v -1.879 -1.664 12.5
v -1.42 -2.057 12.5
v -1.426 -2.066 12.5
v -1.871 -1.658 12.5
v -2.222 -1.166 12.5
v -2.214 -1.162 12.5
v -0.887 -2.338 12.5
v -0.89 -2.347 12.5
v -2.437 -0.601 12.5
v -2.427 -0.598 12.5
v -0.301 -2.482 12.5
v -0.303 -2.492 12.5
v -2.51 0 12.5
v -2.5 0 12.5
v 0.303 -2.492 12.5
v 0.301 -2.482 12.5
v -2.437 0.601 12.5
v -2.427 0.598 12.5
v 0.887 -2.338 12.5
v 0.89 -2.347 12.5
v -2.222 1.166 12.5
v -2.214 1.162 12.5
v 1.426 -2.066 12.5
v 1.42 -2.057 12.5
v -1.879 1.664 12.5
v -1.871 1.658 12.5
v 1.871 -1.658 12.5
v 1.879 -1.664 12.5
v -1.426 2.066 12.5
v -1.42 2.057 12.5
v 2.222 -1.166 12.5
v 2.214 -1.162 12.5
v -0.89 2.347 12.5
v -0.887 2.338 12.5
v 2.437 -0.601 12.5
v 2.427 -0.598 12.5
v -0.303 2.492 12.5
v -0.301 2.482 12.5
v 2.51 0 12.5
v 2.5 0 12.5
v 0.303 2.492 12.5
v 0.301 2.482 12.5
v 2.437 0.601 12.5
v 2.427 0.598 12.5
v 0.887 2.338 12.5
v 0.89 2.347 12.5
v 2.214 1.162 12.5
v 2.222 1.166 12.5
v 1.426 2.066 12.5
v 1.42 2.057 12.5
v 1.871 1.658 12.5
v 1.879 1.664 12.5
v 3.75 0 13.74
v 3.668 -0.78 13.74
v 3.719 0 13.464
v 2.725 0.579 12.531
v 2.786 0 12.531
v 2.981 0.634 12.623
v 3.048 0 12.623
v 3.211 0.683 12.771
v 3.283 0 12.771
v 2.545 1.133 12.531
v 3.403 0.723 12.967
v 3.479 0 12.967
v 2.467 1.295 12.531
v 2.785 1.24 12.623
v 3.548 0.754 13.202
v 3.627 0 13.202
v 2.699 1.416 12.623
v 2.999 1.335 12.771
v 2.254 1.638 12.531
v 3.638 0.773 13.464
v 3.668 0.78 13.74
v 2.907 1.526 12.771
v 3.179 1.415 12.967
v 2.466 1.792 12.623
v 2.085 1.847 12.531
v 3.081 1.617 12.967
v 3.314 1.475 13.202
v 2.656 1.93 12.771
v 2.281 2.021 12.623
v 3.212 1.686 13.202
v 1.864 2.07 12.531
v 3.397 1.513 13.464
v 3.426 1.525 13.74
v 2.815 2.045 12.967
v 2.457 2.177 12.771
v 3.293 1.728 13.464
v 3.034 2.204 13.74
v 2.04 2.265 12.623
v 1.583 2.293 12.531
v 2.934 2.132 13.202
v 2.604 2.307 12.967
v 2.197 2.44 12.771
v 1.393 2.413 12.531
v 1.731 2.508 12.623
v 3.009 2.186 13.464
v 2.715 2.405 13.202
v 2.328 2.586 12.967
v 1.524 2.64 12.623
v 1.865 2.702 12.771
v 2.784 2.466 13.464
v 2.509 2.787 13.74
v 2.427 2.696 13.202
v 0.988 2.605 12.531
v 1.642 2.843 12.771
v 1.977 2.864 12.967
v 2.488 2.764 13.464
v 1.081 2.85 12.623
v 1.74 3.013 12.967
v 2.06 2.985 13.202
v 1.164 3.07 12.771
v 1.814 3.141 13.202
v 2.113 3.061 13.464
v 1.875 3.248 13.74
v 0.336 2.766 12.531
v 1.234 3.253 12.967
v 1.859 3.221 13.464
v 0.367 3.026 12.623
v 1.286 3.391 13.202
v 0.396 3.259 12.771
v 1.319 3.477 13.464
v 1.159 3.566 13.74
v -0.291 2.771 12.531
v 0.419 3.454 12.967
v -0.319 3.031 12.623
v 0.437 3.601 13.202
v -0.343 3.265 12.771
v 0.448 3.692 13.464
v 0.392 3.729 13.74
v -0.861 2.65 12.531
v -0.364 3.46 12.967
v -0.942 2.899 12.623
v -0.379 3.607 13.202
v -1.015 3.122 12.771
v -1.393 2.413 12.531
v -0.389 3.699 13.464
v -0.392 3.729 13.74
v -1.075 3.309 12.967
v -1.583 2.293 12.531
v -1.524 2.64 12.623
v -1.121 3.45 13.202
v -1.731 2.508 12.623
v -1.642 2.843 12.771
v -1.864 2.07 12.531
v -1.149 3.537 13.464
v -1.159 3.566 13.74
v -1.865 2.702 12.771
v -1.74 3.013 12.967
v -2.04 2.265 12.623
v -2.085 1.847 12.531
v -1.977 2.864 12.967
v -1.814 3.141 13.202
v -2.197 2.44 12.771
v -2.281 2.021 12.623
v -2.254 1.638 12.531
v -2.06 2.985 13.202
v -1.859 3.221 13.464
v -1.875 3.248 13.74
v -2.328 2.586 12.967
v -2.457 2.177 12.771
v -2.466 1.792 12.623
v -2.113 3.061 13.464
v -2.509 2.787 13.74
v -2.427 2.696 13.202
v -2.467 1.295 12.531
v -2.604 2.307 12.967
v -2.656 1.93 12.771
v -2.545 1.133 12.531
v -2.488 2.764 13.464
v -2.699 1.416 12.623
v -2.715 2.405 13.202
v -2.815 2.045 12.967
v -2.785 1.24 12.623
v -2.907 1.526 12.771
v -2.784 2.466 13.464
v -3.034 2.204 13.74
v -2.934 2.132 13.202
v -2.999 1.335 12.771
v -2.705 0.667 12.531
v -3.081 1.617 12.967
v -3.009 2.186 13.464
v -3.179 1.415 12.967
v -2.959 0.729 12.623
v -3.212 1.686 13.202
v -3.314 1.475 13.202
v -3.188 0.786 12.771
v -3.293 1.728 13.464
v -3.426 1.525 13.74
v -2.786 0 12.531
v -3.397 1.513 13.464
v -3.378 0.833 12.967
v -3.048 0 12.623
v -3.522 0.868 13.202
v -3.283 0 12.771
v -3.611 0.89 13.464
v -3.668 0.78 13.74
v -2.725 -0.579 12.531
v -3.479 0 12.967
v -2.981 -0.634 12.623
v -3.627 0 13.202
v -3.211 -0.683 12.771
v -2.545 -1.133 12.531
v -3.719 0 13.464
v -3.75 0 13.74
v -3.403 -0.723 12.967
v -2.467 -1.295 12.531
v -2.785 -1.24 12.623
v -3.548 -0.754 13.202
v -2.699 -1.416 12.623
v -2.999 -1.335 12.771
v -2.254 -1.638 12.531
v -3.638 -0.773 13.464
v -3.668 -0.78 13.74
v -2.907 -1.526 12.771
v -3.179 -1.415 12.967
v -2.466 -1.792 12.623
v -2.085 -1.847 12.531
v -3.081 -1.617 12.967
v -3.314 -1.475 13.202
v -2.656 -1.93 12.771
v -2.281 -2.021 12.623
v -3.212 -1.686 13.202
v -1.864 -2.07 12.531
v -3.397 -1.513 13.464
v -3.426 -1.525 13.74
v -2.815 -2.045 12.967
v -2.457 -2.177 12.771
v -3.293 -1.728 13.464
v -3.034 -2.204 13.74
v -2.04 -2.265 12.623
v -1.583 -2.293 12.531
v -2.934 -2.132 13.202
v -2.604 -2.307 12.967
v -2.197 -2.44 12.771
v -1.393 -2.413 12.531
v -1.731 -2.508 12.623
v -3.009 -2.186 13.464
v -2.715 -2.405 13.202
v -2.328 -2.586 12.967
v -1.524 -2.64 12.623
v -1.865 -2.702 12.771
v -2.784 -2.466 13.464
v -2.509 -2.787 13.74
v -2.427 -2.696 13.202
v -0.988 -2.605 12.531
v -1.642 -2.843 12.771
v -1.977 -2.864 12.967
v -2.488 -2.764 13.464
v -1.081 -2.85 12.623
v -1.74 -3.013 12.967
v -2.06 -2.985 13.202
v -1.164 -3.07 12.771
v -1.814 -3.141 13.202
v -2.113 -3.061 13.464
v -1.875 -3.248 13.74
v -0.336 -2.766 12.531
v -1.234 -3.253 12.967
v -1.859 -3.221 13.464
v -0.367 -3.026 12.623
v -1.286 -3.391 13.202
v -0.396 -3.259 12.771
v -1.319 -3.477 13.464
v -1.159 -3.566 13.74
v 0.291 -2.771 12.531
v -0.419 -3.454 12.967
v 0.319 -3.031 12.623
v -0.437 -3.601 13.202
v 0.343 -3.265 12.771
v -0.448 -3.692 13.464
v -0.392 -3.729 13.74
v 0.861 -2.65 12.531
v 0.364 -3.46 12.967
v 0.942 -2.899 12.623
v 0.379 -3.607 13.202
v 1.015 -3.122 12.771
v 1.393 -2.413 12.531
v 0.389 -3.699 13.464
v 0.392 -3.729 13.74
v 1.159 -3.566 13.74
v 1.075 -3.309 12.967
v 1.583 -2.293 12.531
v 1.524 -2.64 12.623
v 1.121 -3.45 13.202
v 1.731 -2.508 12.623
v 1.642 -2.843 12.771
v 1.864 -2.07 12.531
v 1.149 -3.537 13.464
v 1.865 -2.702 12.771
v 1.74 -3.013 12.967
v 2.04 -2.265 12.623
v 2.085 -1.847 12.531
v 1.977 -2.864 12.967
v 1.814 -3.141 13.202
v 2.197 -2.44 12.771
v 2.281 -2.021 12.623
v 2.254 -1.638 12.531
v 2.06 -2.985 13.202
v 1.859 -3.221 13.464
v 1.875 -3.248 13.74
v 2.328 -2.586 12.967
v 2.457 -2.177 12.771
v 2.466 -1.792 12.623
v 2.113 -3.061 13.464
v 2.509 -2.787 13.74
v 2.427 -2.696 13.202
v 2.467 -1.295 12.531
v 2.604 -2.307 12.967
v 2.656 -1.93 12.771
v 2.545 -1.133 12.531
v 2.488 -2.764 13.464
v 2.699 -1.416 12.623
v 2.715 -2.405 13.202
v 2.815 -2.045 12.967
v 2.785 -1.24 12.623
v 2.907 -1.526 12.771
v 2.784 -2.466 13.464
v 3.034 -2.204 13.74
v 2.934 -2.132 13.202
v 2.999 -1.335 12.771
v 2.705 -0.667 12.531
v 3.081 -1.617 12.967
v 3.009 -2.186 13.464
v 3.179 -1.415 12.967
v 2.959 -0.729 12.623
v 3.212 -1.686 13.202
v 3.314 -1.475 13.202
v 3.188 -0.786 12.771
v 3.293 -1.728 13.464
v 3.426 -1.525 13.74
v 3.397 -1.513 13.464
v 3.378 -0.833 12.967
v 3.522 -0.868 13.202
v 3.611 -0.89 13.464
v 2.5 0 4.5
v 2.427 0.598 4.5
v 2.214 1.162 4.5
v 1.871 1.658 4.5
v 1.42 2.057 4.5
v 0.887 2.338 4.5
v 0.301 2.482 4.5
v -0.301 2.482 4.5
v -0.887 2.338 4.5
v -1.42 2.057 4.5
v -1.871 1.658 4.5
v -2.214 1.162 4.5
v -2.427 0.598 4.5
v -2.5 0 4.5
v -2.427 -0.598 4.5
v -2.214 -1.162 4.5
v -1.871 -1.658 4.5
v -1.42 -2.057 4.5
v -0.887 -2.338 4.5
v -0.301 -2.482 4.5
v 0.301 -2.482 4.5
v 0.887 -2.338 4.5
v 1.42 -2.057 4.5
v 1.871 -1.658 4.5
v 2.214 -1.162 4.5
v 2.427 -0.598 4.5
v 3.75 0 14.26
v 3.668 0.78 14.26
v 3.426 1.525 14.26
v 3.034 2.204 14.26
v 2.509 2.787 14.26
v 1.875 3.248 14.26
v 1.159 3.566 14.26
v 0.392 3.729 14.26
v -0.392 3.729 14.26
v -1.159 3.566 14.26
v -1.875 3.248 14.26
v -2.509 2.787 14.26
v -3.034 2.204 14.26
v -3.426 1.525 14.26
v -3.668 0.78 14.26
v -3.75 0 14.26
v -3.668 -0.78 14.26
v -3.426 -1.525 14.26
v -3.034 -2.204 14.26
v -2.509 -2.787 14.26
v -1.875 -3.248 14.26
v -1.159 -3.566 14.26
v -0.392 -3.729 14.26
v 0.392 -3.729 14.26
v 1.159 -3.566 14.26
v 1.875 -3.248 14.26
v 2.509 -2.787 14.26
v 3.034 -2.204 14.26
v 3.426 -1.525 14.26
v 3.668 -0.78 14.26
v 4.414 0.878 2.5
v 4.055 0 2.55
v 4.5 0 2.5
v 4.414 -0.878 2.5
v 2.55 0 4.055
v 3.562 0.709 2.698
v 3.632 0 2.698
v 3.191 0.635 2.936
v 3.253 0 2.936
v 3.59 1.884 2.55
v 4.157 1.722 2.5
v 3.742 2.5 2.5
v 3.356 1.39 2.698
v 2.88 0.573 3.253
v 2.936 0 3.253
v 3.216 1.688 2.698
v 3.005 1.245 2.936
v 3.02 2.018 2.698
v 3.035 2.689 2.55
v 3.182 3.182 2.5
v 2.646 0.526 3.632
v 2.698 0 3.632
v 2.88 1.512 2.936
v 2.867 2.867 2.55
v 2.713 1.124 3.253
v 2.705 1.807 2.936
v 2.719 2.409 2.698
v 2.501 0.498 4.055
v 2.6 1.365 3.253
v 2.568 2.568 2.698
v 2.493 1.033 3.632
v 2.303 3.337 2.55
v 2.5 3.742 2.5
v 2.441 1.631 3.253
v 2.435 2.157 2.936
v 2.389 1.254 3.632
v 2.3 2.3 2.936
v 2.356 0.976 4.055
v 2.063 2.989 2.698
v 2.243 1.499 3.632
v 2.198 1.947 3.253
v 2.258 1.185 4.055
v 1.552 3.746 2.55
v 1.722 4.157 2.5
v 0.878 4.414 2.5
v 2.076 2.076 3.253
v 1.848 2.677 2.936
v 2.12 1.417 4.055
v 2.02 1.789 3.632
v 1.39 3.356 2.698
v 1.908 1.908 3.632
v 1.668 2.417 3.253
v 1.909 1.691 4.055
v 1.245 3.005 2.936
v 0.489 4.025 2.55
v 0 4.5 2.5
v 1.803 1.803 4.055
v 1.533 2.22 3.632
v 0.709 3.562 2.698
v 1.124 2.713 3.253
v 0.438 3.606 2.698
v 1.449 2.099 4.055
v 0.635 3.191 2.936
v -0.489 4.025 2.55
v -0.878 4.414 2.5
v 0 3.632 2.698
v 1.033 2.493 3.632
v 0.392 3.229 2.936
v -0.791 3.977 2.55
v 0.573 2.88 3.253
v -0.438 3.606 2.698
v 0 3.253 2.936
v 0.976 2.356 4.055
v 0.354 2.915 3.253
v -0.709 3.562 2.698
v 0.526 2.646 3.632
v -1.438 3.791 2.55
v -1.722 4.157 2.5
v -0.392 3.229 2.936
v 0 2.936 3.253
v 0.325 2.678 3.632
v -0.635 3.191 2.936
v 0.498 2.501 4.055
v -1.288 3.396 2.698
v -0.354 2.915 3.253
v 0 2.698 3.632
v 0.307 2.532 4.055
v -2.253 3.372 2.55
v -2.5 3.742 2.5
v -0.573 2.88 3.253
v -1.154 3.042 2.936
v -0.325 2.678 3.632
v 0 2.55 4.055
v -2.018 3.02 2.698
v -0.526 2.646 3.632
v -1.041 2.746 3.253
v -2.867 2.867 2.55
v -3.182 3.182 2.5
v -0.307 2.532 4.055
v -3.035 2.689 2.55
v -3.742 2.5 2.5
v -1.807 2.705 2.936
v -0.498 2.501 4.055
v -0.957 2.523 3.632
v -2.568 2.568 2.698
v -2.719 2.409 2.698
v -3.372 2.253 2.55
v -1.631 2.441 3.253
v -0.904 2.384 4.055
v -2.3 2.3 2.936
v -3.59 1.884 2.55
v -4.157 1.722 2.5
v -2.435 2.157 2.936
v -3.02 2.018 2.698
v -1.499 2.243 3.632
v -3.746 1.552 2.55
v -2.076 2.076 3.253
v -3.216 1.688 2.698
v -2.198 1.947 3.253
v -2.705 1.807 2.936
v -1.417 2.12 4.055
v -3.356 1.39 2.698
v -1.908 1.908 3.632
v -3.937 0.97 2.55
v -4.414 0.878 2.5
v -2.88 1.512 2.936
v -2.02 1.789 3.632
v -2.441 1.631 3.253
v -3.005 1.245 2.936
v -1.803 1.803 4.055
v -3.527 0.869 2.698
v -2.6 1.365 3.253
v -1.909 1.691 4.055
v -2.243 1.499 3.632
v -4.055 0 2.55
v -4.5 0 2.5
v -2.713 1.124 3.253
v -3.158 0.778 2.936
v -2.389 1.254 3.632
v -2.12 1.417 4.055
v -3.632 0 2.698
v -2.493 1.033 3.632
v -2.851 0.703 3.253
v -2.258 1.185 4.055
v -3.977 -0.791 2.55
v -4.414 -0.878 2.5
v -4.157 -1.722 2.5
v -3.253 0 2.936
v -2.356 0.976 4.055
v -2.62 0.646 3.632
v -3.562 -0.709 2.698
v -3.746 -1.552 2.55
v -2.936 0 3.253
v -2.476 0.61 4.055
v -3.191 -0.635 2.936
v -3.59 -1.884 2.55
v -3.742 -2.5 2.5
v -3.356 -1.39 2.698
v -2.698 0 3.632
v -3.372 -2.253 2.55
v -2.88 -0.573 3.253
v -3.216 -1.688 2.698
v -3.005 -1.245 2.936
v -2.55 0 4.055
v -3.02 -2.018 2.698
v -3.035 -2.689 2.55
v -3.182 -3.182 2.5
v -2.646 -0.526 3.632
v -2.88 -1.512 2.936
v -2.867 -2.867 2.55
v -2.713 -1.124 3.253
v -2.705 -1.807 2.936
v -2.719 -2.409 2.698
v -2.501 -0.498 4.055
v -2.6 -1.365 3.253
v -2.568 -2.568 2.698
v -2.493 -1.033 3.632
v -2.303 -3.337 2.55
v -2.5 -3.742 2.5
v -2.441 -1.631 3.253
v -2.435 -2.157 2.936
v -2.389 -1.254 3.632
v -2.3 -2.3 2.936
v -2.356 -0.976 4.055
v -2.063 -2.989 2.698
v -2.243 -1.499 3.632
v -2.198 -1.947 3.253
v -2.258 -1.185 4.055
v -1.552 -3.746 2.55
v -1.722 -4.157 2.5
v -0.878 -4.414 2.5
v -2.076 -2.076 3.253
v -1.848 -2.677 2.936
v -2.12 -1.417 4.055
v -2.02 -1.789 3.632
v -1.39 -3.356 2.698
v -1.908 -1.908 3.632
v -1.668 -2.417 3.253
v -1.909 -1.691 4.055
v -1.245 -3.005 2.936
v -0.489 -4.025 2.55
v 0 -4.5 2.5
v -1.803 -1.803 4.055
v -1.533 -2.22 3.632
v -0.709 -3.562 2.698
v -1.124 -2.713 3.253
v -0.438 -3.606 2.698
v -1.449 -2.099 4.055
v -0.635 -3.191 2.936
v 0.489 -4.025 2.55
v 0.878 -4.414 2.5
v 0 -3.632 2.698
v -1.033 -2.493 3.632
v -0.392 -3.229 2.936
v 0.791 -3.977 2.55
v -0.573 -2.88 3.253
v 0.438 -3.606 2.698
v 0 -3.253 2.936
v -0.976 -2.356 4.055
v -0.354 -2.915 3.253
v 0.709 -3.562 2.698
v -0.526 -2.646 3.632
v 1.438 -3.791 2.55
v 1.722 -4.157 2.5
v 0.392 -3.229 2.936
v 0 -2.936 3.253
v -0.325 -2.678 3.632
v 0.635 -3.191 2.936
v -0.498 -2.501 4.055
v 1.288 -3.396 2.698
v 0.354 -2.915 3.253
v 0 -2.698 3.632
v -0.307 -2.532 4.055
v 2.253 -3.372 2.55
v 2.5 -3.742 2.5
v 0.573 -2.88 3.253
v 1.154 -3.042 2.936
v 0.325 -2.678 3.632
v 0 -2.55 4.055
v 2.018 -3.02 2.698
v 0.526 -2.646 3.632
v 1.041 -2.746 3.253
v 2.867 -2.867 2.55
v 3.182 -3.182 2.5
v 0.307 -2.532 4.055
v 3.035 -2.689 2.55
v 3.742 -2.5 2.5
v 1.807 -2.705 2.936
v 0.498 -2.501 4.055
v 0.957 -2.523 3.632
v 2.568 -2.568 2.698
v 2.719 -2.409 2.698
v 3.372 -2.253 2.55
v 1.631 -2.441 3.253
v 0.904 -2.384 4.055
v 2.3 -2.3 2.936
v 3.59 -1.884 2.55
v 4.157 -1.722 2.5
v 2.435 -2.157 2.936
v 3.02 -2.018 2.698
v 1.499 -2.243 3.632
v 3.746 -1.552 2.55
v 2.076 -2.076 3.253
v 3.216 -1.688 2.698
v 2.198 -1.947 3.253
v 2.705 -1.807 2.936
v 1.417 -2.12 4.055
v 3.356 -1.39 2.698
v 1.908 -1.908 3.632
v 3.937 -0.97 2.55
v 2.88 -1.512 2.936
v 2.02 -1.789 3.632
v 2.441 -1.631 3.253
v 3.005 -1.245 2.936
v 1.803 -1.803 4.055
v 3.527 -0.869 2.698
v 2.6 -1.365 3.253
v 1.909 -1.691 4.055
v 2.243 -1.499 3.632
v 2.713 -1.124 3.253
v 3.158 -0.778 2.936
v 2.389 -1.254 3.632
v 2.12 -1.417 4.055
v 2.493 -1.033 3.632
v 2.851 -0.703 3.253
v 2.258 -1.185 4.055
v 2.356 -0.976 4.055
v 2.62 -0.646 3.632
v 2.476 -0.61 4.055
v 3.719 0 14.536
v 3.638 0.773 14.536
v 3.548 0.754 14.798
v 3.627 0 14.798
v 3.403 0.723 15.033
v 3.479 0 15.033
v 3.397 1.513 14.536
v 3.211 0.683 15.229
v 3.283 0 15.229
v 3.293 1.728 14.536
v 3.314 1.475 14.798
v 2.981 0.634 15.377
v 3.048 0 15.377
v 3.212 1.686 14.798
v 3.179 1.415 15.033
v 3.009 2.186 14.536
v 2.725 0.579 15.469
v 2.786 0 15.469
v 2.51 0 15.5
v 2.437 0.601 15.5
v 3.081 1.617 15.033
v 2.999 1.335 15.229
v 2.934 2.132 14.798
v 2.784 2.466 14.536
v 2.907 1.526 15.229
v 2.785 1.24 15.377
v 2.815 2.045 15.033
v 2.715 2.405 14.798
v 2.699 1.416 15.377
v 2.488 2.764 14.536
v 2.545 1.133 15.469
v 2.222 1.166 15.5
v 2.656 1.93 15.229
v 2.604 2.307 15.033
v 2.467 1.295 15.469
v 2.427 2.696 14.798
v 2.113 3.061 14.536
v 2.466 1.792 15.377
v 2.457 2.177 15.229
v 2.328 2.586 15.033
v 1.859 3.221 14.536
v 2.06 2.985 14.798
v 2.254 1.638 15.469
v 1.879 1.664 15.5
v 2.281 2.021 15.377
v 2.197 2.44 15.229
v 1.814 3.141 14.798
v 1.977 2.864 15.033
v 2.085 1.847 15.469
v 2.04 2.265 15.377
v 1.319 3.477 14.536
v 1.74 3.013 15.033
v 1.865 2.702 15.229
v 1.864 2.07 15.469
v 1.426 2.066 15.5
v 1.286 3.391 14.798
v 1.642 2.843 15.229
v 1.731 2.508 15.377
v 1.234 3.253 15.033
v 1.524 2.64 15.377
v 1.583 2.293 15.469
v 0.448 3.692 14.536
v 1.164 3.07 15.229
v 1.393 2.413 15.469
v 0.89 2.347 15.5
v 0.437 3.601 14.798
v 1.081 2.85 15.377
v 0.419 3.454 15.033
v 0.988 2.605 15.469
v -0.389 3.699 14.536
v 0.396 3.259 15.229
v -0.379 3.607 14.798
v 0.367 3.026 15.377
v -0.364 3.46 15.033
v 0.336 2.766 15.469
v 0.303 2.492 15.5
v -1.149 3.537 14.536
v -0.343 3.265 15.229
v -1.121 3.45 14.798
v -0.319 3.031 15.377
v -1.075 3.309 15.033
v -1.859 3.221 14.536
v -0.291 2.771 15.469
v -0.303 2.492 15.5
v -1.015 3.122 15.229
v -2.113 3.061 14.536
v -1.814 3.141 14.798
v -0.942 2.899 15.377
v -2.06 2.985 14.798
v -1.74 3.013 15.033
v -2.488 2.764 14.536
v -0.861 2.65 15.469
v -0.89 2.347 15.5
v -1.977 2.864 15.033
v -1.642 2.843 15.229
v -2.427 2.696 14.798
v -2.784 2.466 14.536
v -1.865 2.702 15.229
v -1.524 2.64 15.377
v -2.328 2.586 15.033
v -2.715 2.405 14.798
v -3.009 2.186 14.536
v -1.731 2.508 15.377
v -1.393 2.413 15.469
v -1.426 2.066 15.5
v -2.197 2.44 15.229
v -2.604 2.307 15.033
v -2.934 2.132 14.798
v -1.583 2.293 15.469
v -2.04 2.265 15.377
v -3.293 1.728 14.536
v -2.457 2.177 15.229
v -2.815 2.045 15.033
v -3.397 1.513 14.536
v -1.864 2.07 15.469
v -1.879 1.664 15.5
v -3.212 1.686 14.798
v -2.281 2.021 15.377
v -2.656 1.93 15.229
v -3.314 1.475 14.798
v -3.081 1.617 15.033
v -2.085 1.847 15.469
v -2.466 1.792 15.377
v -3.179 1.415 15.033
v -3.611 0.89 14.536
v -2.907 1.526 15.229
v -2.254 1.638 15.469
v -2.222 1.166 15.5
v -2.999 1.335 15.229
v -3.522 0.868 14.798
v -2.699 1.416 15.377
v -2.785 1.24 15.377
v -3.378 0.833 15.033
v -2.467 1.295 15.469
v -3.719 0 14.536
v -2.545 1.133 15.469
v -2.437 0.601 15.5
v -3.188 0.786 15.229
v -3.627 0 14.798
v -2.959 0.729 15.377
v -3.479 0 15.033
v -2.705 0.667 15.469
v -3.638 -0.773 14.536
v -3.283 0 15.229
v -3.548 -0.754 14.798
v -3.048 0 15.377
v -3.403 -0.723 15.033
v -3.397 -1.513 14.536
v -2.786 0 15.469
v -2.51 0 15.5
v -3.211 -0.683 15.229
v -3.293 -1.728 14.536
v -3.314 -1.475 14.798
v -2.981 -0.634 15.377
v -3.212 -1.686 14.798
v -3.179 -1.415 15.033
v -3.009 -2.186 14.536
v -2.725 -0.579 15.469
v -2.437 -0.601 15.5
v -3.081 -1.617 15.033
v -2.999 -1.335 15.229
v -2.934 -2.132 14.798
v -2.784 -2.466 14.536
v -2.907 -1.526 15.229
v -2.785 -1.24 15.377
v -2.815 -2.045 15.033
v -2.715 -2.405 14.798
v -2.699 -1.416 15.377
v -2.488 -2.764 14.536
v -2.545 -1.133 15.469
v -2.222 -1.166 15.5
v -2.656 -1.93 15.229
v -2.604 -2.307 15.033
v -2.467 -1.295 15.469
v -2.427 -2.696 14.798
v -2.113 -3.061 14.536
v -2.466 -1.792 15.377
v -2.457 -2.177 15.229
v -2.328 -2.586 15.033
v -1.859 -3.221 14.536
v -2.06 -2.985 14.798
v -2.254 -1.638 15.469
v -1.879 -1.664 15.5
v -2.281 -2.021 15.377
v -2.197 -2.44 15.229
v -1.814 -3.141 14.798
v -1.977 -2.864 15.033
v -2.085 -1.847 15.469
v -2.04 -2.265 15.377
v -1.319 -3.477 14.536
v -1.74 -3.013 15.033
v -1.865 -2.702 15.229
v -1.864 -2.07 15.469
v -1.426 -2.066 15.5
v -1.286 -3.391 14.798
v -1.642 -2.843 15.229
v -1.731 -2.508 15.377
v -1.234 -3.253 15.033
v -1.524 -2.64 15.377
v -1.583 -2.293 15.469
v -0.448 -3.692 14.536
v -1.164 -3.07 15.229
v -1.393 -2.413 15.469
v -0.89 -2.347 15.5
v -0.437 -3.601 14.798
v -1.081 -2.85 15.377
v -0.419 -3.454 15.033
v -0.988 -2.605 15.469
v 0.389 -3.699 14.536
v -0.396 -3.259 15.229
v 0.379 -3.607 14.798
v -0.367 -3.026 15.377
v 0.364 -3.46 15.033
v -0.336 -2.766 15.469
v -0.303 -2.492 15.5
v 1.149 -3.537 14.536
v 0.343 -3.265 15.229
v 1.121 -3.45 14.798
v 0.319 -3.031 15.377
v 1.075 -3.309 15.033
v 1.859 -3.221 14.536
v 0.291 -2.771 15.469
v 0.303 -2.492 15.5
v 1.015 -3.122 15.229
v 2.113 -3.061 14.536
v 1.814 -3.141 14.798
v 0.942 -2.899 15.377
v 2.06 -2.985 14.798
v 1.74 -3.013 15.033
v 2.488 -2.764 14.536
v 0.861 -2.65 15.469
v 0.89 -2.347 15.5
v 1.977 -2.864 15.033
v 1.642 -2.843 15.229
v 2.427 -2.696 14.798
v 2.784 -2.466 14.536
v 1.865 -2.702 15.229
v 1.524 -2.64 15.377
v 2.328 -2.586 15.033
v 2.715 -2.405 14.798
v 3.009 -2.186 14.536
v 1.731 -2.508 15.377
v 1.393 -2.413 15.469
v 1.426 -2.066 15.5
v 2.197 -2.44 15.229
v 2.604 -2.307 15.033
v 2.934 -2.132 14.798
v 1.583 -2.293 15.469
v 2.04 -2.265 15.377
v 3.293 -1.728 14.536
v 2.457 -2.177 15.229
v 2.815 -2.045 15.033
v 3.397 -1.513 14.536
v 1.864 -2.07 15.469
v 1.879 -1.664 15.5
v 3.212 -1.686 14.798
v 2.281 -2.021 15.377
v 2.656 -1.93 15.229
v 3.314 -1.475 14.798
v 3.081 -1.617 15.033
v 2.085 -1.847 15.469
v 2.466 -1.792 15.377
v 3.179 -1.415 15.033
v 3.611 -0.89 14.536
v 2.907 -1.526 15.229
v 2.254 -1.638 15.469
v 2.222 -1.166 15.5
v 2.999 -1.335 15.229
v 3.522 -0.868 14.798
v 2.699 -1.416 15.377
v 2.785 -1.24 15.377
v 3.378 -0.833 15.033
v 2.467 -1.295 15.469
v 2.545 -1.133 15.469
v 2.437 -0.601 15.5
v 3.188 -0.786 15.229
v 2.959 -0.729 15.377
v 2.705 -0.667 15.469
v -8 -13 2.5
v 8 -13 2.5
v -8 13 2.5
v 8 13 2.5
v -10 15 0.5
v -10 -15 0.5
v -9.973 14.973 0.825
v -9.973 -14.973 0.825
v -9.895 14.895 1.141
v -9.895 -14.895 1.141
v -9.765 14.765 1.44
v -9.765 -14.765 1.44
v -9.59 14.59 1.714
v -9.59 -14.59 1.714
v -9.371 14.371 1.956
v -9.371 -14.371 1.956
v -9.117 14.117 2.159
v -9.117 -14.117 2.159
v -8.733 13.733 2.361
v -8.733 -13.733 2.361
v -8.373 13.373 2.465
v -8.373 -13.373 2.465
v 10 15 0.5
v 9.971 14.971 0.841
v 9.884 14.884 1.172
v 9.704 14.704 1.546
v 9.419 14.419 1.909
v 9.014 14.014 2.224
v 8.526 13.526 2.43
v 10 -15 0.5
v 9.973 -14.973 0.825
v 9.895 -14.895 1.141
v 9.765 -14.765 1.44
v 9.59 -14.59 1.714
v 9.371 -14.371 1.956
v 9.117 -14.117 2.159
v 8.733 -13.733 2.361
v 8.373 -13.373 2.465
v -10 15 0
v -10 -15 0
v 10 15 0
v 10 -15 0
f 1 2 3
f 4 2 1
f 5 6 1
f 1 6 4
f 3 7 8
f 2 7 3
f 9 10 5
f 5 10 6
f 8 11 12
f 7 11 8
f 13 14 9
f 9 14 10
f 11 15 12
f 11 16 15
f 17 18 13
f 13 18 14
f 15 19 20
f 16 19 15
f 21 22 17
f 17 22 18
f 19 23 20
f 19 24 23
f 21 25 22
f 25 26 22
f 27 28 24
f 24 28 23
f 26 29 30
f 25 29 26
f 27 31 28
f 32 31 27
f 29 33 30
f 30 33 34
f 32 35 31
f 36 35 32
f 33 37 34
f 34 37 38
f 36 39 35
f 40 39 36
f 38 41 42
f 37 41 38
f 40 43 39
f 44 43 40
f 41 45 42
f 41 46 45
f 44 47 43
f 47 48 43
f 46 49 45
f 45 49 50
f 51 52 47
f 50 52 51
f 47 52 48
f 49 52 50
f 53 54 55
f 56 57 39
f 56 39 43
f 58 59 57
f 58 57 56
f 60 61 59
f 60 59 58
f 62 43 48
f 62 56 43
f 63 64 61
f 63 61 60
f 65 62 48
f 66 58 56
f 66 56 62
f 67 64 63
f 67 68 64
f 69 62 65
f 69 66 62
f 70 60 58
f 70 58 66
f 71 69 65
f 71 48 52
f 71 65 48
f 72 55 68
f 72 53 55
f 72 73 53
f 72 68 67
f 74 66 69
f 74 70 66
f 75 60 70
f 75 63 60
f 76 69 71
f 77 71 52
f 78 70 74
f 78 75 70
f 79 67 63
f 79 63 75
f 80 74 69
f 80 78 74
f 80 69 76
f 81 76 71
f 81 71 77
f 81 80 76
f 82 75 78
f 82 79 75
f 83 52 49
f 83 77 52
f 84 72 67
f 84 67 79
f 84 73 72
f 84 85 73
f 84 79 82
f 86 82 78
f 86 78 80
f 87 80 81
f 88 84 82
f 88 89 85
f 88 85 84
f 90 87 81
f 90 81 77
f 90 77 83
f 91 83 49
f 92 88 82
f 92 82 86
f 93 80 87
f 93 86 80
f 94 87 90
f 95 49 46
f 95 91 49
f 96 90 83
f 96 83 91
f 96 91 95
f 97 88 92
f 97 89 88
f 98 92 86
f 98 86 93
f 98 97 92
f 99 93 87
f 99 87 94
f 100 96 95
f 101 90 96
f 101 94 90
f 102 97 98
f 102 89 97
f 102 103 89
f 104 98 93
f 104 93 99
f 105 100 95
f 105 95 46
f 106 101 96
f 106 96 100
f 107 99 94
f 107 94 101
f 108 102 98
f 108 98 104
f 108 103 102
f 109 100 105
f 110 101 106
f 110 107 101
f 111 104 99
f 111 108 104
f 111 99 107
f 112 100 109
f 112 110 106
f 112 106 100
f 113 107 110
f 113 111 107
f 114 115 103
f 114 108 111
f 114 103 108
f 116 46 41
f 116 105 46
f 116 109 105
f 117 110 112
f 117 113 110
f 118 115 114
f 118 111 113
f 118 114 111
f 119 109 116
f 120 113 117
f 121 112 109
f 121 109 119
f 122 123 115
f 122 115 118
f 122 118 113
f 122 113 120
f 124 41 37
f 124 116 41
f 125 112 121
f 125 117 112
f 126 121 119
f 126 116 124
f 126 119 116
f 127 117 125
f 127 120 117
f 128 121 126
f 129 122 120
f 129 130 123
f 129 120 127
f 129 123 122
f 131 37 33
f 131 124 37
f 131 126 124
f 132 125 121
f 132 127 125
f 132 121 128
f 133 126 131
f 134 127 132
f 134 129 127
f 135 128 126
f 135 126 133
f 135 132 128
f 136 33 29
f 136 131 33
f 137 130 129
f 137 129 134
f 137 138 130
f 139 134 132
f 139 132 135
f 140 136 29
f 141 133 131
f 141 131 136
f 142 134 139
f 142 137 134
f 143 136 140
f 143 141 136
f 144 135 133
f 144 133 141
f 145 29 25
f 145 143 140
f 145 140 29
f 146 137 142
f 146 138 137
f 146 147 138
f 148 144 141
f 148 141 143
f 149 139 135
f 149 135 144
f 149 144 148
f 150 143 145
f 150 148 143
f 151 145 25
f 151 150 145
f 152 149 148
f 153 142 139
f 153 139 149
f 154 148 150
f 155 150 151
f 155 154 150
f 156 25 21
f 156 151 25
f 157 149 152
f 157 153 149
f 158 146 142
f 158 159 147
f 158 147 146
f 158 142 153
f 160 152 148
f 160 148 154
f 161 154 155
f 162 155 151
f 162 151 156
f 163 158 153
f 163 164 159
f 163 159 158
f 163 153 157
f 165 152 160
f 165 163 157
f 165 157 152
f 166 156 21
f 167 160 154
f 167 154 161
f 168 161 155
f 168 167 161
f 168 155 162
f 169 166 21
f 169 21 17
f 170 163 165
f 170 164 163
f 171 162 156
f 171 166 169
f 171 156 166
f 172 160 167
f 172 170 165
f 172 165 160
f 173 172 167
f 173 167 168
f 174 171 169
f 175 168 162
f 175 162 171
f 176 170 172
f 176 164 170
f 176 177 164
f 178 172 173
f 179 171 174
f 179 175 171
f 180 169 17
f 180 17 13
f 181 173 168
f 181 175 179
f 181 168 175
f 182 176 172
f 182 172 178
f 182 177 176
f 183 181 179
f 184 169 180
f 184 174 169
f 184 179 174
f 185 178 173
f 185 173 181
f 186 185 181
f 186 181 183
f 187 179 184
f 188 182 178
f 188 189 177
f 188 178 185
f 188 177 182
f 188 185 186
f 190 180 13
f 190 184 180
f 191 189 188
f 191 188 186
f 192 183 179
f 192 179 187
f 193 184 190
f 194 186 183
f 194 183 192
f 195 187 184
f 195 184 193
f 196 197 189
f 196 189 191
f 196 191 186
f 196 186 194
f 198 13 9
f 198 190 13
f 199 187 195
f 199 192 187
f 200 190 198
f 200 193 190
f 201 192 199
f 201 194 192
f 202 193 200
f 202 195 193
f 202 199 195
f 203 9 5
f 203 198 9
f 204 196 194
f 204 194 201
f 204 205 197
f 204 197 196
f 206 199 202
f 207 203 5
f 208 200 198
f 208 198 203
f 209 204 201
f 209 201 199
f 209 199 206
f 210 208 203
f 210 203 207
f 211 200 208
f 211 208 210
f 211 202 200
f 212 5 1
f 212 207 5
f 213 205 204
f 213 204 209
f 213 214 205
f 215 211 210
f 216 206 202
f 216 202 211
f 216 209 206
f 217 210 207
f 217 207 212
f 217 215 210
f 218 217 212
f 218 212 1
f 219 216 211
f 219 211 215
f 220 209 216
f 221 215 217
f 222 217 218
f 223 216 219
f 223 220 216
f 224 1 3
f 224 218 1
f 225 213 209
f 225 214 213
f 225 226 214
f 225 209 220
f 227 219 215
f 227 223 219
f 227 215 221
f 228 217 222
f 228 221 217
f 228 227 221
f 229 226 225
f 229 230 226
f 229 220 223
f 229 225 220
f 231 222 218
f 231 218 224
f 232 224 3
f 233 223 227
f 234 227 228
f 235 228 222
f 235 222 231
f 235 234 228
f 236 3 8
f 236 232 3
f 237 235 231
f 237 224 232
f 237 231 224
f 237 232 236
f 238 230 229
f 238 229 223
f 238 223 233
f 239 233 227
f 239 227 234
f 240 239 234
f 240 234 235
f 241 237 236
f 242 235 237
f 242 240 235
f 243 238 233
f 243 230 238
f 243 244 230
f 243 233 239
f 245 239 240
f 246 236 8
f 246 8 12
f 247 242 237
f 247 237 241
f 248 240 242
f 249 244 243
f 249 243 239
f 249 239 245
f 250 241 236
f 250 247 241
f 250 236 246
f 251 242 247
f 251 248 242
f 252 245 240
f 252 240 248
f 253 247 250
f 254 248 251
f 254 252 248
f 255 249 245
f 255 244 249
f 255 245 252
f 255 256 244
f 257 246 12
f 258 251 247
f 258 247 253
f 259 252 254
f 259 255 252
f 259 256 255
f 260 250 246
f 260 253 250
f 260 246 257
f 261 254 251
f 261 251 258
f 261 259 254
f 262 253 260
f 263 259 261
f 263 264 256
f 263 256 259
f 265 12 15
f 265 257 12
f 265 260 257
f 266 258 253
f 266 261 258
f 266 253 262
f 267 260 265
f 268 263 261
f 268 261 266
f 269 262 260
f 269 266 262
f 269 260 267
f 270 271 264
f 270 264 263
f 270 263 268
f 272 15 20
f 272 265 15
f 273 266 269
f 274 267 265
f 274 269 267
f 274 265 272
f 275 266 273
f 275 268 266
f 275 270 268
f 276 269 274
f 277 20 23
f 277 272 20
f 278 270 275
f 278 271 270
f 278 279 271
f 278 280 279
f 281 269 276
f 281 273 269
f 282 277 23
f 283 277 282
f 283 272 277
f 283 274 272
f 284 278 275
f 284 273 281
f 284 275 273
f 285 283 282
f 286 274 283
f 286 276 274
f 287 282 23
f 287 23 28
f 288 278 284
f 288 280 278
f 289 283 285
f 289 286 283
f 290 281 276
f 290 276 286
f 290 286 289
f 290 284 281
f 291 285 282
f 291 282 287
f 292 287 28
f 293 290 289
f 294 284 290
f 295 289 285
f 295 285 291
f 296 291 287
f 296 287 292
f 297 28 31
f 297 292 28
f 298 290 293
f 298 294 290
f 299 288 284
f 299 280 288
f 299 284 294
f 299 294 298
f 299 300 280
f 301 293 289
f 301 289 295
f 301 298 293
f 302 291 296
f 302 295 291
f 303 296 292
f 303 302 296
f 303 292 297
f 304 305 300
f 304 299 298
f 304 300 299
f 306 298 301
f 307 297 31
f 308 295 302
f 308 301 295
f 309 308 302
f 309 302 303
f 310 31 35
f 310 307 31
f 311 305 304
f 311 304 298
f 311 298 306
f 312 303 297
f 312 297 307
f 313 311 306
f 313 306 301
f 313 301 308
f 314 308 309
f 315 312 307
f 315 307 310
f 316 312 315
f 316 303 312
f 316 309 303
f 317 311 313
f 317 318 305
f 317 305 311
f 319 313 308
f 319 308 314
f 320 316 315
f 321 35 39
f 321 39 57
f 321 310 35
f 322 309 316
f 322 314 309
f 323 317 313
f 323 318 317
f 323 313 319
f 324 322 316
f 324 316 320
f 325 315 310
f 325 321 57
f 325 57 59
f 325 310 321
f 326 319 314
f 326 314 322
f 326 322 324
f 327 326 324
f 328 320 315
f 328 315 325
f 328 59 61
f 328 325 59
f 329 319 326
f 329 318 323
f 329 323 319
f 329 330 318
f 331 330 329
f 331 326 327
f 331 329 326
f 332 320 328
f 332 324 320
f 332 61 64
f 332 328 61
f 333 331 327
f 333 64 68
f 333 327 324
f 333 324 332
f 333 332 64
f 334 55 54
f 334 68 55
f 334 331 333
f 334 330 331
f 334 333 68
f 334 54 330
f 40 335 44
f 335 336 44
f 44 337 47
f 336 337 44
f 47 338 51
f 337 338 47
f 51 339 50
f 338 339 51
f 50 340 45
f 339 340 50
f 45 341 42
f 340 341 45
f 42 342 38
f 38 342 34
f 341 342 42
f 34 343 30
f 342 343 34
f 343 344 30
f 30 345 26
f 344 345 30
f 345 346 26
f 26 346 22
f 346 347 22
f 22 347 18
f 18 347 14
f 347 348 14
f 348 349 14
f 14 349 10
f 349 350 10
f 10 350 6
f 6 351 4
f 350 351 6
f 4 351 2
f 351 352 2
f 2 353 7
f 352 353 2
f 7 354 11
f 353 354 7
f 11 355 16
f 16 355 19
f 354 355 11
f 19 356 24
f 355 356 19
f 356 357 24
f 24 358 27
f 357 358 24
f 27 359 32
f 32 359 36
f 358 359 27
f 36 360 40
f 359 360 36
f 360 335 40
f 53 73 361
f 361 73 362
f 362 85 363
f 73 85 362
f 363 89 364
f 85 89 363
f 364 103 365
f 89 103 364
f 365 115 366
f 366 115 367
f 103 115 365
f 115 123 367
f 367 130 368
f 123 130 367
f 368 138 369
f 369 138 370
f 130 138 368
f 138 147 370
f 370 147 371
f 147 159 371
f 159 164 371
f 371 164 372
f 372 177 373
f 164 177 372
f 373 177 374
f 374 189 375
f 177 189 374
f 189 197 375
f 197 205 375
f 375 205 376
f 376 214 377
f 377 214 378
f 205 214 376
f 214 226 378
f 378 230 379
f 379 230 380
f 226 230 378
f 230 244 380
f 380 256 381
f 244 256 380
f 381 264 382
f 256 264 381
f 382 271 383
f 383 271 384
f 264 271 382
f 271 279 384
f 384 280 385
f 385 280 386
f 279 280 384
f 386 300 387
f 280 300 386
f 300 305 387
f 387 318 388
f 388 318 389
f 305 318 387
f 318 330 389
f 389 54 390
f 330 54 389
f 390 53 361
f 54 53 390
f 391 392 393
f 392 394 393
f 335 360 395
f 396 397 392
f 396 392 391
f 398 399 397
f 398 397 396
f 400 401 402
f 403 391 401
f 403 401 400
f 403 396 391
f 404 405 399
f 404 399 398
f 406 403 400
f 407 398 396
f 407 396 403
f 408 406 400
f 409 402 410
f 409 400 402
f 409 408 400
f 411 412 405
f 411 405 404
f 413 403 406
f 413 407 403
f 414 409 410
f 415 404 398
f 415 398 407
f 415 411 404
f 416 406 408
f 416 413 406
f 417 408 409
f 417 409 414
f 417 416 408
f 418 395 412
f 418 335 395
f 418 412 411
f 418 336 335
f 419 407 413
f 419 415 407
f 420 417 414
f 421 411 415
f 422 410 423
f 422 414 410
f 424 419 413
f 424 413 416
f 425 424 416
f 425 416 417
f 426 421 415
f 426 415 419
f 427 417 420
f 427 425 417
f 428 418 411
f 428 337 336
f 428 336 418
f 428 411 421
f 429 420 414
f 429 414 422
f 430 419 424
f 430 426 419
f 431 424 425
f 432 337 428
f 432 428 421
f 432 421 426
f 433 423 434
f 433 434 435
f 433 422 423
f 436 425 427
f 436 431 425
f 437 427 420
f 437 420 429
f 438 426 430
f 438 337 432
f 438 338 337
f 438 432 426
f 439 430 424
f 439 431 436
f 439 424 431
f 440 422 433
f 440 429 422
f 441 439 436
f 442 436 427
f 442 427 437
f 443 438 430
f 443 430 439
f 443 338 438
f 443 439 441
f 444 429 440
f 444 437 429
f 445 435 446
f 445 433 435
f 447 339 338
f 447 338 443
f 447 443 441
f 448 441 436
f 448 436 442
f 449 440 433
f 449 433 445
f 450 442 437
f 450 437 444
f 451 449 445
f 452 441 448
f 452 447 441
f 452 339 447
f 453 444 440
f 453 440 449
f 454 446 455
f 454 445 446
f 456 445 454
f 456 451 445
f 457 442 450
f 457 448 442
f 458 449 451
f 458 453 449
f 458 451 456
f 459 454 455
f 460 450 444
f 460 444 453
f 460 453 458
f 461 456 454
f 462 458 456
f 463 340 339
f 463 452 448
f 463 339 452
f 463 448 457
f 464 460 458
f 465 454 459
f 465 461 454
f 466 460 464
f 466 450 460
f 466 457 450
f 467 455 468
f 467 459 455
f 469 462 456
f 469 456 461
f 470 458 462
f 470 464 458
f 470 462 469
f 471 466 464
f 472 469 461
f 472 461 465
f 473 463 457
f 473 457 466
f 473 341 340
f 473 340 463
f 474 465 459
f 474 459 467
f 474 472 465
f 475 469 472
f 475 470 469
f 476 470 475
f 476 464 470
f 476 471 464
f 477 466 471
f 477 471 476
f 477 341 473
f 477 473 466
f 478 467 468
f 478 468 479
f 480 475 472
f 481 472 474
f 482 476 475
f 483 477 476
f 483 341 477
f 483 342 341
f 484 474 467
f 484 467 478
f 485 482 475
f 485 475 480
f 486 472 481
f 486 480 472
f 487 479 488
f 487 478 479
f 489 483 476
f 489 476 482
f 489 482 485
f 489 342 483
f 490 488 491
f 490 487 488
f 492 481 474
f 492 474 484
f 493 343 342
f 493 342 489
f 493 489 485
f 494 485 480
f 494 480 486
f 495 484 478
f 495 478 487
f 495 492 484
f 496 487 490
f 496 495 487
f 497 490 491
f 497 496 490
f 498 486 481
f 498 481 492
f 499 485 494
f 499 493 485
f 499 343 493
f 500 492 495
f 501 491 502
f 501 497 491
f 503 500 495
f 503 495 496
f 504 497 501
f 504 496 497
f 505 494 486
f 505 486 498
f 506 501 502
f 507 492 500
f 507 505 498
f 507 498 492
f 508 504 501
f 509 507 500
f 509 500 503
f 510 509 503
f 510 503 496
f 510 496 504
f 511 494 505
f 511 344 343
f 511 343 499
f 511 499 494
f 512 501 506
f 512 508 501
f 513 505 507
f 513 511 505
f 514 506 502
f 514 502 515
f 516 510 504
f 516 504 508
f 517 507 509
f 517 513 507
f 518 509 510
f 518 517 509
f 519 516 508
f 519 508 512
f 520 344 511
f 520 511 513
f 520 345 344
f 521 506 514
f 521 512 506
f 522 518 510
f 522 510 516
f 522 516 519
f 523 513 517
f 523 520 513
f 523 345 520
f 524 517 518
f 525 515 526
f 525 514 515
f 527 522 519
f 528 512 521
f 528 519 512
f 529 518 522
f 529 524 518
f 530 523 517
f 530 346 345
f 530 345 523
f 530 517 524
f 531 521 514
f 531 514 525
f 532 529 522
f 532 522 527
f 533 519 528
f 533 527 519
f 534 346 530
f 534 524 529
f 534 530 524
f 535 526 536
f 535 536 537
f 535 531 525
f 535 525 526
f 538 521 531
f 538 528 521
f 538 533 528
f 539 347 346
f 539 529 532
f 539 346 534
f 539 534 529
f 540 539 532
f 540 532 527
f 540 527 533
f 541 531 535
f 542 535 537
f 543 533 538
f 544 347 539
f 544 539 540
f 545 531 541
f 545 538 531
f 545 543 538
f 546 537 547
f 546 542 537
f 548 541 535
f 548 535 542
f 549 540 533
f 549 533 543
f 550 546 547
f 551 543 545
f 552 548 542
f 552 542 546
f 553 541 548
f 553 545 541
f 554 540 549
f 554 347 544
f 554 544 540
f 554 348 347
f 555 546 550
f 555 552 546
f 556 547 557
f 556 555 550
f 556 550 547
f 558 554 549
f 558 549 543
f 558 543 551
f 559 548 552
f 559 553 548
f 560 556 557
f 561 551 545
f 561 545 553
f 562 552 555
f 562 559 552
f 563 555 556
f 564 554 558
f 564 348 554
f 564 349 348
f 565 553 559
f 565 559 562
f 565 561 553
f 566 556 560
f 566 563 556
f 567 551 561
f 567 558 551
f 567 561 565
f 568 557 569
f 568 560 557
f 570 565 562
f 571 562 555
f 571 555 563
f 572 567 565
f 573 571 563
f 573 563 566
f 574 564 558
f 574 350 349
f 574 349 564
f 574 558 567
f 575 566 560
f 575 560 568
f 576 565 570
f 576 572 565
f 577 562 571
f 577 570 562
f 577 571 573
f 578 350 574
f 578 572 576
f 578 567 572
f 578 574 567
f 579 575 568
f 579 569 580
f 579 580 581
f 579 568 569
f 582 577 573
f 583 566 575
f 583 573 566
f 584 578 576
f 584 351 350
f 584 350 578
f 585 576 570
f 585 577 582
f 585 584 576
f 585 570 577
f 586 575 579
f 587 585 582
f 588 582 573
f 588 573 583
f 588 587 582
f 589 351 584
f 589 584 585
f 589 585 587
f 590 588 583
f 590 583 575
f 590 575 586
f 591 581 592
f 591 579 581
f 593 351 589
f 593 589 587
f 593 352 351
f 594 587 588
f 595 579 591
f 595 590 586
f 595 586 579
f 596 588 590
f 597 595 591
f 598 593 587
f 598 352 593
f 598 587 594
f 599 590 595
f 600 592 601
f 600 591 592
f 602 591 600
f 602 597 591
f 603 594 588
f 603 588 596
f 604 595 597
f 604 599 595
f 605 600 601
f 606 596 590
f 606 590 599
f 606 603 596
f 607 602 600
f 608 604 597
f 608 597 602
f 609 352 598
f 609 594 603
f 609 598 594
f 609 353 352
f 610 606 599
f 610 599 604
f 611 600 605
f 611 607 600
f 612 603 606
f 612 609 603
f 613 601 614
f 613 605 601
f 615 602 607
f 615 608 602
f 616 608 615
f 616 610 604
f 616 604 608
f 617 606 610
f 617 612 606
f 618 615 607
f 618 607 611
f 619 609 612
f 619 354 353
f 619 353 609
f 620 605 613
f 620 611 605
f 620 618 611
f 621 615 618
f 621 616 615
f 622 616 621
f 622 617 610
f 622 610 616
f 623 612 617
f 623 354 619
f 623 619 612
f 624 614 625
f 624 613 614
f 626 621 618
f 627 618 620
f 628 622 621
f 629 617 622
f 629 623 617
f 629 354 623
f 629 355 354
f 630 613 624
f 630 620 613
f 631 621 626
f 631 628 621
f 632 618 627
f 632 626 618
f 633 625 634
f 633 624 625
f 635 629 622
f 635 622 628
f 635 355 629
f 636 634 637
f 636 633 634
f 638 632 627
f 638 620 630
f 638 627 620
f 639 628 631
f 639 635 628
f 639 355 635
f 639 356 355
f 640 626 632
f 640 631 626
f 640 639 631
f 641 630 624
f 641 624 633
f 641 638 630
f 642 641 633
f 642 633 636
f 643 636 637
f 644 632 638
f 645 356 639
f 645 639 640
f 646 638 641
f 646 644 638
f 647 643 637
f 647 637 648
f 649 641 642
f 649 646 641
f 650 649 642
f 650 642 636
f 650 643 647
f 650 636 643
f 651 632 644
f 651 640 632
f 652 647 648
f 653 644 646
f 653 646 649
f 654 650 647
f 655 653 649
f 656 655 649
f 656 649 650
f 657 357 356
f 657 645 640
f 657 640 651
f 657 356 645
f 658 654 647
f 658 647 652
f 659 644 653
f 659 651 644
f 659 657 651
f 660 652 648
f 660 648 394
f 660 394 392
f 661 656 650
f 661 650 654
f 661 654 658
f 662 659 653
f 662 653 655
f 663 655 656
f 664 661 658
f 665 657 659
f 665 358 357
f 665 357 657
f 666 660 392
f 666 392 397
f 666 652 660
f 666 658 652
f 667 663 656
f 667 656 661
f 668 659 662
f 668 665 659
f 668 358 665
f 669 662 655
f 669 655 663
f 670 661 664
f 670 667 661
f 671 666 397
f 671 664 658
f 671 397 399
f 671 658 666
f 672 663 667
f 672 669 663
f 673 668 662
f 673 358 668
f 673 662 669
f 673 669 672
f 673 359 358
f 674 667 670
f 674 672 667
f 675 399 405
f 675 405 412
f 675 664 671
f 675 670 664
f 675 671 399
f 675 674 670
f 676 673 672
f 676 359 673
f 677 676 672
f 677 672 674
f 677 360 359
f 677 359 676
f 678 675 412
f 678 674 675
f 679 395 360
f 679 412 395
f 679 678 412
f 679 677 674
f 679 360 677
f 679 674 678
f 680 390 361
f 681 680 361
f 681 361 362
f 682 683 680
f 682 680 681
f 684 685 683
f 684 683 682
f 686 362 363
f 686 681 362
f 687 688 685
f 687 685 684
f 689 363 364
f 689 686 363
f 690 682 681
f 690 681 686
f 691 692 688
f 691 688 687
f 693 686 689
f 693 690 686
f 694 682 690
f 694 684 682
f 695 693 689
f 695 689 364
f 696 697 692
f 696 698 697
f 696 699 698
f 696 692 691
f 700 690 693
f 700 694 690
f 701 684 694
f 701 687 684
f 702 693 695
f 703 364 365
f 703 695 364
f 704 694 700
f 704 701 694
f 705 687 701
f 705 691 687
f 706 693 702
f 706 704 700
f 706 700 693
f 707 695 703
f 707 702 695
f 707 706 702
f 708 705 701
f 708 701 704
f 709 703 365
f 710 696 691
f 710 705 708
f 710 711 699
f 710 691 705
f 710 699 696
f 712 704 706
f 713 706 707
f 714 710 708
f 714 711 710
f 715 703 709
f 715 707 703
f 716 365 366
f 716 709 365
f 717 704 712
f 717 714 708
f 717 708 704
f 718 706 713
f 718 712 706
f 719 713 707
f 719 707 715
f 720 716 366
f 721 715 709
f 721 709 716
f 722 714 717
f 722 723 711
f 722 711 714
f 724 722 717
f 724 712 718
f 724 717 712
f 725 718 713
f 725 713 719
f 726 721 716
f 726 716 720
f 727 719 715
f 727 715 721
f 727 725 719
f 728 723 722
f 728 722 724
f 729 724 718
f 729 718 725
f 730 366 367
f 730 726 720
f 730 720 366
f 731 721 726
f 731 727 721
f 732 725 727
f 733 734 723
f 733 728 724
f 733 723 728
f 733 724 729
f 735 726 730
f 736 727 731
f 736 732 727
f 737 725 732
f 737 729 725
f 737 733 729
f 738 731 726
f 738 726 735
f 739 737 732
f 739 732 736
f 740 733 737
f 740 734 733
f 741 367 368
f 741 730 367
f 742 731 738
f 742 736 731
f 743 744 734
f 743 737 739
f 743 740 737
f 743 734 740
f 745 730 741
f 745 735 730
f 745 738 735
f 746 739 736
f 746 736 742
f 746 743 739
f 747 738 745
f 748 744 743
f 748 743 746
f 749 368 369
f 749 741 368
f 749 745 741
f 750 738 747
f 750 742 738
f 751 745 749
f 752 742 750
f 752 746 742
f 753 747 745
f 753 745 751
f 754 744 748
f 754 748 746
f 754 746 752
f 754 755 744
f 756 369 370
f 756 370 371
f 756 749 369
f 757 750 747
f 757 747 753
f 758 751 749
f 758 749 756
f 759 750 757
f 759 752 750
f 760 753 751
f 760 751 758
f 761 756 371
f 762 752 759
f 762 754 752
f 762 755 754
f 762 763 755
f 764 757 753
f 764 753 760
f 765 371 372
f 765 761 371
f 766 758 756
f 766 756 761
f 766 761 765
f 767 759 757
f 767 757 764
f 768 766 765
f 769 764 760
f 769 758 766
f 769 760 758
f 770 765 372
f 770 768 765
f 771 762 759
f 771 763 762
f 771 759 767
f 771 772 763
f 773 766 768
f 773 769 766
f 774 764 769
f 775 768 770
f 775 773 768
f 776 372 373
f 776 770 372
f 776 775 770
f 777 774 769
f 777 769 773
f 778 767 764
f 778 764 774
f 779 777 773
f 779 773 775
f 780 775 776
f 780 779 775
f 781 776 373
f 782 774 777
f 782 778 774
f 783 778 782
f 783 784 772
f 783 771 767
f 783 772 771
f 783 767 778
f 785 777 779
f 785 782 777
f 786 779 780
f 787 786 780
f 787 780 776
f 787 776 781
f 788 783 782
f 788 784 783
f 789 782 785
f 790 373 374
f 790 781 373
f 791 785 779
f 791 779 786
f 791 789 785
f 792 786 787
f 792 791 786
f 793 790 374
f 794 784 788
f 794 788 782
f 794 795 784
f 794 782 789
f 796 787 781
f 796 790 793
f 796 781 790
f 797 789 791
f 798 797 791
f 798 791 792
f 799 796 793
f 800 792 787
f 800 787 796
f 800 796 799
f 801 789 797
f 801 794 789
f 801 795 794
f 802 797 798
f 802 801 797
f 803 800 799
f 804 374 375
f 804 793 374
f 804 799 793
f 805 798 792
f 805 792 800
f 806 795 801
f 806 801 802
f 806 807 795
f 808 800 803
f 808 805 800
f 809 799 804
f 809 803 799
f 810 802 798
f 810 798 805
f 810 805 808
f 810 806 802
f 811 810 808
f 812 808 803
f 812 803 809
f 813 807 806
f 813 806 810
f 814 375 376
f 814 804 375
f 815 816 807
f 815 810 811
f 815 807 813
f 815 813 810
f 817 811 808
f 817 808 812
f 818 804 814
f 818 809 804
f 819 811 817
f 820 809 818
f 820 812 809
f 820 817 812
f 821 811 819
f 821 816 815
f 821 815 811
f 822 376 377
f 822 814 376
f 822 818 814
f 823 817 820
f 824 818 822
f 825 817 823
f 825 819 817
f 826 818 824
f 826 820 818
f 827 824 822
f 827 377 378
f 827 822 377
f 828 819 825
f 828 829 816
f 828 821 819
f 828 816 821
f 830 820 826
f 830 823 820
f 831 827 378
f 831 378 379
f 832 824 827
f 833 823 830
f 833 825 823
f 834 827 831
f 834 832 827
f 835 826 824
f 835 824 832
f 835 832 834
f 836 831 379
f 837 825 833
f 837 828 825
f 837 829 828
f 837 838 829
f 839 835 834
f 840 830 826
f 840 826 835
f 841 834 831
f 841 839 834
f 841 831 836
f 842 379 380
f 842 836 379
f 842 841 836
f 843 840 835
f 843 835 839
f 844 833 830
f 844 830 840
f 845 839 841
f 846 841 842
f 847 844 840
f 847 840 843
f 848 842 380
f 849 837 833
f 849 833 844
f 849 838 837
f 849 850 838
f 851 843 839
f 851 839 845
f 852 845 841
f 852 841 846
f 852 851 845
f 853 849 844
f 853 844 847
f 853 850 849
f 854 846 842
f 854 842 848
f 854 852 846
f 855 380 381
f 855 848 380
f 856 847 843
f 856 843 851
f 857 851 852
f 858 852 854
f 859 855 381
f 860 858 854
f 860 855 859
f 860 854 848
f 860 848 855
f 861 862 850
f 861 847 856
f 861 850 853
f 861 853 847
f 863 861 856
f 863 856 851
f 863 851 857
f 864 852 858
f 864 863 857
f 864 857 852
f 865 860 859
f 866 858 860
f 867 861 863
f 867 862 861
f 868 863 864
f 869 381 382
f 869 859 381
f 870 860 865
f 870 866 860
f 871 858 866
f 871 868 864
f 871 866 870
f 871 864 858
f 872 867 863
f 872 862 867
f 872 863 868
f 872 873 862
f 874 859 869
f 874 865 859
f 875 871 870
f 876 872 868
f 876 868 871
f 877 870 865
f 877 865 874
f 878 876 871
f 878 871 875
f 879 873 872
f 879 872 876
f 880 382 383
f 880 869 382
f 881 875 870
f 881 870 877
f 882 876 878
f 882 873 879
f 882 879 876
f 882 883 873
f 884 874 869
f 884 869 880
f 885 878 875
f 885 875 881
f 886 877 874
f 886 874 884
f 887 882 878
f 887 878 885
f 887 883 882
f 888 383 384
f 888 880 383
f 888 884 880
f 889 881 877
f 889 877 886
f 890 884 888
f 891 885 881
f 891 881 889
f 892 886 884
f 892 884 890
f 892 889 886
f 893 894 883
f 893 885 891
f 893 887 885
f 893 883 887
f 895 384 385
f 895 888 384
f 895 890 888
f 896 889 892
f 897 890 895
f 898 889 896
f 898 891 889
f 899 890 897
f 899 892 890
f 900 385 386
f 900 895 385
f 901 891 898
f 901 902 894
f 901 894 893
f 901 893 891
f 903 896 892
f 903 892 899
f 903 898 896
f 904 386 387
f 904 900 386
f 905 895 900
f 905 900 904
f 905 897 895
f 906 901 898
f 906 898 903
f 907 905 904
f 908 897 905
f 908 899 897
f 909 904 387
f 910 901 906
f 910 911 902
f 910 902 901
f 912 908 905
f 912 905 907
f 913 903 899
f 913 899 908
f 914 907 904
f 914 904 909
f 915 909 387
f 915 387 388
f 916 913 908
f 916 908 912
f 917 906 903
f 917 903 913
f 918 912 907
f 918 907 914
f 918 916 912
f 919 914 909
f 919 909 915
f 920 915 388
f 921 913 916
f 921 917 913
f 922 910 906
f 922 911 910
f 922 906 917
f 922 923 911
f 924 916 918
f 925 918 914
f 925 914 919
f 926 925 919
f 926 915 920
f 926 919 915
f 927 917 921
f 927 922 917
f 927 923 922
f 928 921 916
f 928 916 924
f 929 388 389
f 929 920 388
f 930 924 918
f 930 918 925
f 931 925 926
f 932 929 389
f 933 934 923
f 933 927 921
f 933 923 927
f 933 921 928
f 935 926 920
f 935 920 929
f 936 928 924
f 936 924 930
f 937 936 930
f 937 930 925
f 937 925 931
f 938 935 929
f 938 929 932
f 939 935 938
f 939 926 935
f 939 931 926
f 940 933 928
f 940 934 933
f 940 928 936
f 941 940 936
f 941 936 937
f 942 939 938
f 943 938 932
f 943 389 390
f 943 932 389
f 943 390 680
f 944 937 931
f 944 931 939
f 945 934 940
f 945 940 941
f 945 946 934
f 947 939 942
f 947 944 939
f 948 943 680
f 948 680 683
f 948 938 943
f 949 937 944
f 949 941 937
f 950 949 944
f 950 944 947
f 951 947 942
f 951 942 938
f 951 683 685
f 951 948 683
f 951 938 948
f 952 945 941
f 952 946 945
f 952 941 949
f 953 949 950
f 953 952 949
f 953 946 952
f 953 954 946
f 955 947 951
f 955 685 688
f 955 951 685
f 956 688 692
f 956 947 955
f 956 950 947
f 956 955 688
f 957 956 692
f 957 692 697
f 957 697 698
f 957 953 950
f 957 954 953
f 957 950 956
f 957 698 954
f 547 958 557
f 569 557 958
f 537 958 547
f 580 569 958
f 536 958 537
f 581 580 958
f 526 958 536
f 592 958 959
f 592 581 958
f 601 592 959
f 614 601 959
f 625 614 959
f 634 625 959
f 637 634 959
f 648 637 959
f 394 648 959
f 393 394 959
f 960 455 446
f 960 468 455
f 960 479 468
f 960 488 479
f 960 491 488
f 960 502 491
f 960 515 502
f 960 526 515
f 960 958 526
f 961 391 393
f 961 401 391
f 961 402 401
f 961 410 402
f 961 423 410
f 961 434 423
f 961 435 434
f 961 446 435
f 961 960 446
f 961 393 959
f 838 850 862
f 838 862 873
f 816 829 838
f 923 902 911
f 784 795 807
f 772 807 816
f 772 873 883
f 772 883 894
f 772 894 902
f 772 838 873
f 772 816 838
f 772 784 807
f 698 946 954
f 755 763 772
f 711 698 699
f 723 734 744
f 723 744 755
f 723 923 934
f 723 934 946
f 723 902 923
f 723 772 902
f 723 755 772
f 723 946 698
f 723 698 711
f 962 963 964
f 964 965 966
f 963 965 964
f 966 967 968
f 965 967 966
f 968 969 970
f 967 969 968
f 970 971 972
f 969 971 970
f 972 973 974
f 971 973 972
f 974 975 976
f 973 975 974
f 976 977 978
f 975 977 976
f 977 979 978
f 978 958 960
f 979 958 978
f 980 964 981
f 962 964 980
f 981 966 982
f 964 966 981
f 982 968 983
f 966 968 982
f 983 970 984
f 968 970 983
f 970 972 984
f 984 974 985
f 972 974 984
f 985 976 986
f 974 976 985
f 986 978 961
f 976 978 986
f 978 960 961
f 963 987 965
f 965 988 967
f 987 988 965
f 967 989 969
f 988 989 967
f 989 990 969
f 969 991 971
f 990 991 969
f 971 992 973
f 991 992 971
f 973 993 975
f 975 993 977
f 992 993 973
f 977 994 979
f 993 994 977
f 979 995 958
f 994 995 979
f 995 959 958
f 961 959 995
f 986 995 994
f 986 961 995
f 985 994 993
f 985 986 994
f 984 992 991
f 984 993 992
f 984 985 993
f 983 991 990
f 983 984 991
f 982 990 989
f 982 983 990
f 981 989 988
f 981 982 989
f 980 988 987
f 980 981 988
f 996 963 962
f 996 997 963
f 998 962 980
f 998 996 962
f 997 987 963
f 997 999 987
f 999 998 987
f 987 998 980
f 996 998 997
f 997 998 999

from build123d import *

# Parameters (mm, degrees)
SKETCH_W     = 20
SKETCH_H     = 30
PAD_DEPTH    = 2.5
SKETCH001_R  = 2.5
PAD001_DEPTH = 10
SKETCH002_R  = 3.75
PAD002_DEPTH = 3
FILLET_R     = 2
FILLET001_R  = 1.24


with BuildPart() as part:
    # Sketch → Pad (new body)
    with BuildSketch(Plane.XY):
        Rectangle(SKETCH_W, SKETCH_H)
    extrude(amount=PAD_DEPTH)

    # Sketch001 (on Face6 of Pad) → Pad001 (join)
    with BuildSketch(Plane.XY.offset(2.5)):
        Circle(SKETCH001_R)
    extrude(amount=PAD001_DEPTH)

    # Sketch002 (on Face8 of Pad001) → Pad002 (join)
    with BuildSketch(Plane.XY.offset(12.5)):
        Circle(SKETCH002_R)
    extrude(amount=PAD002_DEPTH)

    # Fillet
    fillet_edges = [part.edges().sort_by_distance(p)[0] for p in [
        (-10, 0, 2.5),
        (0, -15, 2.5),
        (10, 0, 2.5),
        (0, 15, 2.5),
        (-2.5, 0, 2.5),
    ]]
    fillet(fillet_edges, radius=FILLET_R)

    # Fillet001
    fillet001_edges = [part.edges().sort_by_distance(p)[0] for p in [
        (-3.75, 0, 12.5),
        (-3.75, 0, 15.5),
    ]]
    fillet(fillet001_edges, radius=FILLET001_R)


solid = part.part
